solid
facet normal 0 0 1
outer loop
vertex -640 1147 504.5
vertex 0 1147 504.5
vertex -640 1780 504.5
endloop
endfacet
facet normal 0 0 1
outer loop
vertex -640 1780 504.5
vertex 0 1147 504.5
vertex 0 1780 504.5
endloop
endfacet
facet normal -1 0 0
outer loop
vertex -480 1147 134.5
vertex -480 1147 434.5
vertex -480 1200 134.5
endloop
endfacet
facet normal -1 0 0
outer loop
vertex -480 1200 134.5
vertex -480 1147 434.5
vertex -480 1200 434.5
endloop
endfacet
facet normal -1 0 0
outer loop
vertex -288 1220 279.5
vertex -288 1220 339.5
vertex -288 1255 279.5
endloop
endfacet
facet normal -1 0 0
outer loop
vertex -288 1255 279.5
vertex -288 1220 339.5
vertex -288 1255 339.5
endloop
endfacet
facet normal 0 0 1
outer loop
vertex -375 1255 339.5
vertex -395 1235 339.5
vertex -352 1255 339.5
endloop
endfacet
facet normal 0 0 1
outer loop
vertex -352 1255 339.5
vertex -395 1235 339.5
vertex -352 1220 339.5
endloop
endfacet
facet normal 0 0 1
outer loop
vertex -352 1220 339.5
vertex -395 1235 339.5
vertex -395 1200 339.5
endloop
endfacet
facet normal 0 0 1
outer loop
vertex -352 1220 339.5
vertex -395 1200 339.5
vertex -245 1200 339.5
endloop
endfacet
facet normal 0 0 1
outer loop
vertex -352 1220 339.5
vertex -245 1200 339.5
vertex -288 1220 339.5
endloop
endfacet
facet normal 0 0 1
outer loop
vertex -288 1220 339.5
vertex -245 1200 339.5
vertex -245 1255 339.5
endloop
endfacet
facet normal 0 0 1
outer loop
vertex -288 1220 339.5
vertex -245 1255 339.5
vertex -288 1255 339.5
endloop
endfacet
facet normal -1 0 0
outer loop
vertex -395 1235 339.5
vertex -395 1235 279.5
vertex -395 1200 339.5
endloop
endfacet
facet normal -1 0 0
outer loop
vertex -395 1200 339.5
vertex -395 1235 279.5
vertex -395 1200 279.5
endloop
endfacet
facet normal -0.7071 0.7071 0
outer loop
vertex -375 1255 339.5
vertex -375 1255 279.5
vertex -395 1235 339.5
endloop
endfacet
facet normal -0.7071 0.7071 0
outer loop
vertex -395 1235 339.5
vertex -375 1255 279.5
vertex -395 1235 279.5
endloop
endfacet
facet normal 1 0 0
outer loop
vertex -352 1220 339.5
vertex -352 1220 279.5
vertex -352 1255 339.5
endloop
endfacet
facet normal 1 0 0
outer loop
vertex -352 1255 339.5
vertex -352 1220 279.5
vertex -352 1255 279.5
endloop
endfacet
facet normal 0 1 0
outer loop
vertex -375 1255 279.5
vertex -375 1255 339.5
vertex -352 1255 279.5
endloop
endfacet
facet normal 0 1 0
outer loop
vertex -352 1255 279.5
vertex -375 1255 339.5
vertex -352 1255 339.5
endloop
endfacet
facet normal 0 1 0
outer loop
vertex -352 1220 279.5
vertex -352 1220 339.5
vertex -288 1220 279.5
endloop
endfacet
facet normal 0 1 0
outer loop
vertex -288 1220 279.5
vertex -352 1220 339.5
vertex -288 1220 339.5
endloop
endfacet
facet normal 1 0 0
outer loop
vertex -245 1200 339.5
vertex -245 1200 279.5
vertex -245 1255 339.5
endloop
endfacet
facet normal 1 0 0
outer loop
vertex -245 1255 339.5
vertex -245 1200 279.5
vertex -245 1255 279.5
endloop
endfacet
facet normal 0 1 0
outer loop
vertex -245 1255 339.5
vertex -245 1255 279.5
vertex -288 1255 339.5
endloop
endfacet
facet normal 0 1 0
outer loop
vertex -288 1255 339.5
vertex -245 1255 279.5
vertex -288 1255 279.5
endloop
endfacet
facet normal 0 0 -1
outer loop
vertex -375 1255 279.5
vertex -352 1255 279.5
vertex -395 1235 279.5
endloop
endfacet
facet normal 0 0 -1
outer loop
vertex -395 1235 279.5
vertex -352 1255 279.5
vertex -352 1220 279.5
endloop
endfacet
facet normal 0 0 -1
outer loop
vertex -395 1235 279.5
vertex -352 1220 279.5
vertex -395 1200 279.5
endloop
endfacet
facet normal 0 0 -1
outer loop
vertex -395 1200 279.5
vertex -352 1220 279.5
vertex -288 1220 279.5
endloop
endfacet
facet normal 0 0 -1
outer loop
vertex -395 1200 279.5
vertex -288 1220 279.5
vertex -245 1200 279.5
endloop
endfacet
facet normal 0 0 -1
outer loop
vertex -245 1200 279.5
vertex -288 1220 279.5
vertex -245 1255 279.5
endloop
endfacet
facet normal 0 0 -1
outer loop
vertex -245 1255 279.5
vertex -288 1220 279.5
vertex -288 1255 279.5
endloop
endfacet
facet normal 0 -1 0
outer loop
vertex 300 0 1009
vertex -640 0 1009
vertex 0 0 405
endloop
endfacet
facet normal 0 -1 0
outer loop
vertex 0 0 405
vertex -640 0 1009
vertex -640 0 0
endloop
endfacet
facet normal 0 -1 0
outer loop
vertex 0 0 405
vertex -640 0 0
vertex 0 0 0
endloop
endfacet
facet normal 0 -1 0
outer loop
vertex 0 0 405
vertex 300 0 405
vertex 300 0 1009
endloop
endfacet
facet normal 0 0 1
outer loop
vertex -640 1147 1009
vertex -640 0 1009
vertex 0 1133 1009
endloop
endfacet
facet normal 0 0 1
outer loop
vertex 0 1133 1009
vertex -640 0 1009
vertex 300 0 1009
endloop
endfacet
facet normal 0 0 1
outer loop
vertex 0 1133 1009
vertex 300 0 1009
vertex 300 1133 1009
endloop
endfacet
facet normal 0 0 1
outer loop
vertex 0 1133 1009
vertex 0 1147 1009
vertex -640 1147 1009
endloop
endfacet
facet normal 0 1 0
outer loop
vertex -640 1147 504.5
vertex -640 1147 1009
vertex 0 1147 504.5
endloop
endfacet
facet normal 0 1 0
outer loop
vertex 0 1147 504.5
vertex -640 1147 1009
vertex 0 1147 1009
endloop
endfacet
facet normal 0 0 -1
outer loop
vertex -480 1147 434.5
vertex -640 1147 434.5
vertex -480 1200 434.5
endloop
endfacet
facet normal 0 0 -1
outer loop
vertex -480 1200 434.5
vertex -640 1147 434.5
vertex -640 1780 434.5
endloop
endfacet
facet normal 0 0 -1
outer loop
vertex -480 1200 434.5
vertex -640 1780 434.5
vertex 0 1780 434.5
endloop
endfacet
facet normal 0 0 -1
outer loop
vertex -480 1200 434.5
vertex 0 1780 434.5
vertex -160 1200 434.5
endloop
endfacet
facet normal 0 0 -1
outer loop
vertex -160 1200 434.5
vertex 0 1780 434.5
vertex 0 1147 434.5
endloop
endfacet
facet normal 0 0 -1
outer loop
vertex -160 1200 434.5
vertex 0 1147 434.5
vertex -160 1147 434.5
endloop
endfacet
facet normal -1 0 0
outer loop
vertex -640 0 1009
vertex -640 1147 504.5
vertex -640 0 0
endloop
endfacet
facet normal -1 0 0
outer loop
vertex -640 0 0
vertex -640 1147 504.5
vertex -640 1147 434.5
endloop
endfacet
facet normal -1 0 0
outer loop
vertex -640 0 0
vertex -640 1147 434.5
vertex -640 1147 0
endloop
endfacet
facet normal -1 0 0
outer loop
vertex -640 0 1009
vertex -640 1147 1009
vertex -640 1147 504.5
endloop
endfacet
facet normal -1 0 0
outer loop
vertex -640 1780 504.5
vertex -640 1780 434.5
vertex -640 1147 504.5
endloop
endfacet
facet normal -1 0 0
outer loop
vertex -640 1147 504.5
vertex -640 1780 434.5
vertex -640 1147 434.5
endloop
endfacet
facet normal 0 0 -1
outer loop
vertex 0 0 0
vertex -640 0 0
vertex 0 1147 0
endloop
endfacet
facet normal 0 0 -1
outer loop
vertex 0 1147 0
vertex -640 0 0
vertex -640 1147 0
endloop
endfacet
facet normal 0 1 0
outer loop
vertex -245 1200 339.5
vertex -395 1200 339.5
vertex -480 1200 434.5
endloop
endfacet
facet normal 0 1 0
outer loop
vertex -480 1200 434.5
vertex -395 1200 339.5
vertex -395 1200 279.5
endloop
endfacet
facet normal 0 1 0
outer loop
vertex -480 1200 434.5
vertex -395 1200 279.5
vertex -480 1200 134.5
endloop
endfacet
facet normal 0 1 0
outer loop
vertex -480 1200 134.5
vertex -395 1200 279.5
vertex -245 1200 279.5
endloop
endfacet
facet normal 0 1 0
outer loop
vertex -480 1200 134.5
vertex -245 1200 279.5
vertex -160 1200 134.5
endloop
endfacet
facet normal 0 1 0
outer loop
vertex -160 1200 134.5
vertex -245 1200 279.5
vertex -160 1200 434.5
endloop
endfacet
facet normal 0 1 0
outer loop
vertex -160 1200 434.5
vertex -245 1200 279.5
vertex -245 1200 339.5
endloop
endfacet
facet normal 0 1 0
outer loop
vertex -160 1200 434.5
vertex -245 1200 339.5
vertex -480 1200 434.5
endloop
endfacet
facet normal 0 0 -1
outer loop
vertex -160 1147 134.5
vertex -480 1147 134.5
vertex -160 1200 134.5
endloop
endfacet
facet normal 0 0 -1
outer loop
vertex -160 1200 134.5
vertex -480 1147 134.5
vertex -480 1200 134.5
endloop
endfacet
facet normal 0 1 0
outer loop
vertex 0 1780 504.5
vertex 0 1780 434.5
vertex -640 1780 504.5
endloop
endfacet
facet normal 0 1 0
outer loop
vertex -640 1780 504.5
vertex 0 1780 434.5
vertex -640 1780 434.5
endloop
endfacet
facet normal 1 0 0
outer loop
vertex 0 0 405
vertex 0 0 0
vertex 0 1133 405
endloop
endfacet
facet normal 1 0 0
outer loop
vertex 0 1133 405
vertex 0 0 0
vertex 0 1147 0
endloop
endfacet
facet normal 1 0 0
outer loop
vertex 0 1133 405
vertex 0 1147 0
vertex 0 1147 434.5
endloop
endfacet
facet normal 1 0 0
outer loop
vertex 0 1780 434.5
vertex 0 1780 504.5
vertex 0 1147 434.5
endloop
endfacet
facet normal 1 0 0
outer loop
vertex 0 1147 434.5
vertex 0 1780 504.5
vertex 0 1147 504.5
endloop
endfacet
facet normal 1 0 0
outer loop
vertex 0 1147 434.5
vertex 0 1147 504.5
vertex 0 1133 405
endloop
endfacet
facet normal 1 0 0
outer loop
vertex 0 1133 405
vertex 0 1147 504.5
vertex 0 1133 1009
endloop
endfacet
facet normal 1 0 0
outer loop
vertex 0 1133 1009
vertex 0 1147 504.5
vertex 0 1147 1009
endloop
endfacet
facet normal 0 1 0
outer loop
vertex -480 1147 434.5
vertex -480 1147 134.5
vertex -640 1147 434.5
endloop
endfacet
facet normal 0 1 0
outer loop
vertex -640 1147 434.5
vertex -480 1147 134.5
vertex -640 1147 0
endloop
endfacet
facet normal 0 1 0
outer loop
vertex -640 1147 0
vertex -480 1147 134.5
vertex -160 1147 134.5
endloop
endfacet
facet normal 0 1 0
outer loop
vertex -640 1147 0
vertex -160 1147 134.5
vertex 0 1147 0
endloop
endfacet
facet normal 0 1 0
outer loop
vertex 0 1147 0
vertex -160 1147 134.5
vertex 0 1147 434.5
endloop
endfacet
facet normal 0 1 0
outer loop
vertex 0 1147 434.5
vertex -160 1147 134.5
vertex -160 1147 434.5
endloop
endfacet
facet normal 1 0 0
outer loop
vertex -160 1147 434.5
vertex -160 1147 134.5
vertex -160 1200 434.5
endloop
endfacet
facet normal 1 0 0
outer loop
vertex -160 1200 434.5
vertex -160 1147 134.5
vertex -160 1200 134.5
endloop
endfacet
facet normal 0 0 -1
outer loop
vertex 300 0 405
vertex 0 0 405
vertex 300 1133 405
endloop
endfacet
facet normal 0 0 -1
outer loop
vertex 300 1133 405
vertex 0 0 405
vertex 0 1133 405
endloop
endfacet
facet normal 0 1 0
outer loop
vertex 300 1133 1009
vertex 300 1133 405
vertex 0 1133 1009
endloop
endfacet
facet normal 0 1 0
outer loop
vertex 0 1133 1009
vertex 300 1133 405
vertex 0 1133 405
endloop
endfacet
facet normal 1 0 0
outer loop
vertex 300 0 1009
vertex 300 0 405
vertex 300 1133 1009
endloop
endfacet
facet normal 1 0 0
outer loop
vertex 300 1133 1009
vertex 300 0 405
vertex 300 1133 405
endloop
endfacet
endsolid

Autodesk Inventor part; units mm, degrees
ref_plane "YZ Plane" through (0, 0, 0) normal (1, 0, 0) x (0, 1, 0)
ref_plane "XZ Plane" through (0, 0, 0) normal (0, 1, 0) x (-1, 0, 0)
ref_plane "XY Plane" through (0, 0, 0) normal (0, 0, 1) x (1, 0, 0)
sketch "Boceto1" plane through (0, 0, 0) normal (0, 1, 0) x (-1, 0, 0)
  line L0 (0, 0) -> (640, 0)
  line L1 (640, 0) -> (640, 1009)
  line L2 (640, 1009) -> (0, 1009)
  line L3 (0, 1009) -> (0, 0)
  dimension "d0" = 640
  dimension "d1" = 1009
extrude "Extrusión1" add sketch "Boceto1" along normal blind 1147
sketch "Boceto2" plane through (0, 1147, 0) normal (0, 1, 0) x (1, 0, 0)
  line L0 (-640, 0) -> (-640, -1009) construction
  line L1 (-640, -1009) -> (0, -1009) construction
  line L2 (0, -1009) -> (0, 0) construction
  line L3 (0, 0) -> (-640, 0) construction
  line L4 (-640, 0) -> (-640, -1009) construction
  line L5 (-640, -1009) -> (-640, -504.5) construction
  line L6 (0, -1009) -> (0, 0) construction
  line L7 (-640, -504.5) -> (0, -504.5) construction
  line L8 (0, -504.5) -> (0, -434.5) construction
  line L9 (0, -434.5) -> (-640, -434.5) construction
  line L10 (-640, -434.5) -> (-640, -504.5) construction
  line L11 (0, -434.5) -> (-640, -434.5)
  line L12 (-640, -434.5) -> (-640, -504.5)
  line L13 (-640, -504.5) -> (0, -504.5)
  line L14 (0, -504.5) -> (0, -434.5)
  dimension "d4" = 504.5
  dimension "d5" = 70
  dimension "d6" = 70
extrude "Extrusión2" add sketch "Boceto2" along normal blind 633
sketch "Boceto3" plane through (0, 1147, 0) normal (0, 1, 0) x (1, 0, 0)
  line L0 (-640, -434.5) -> (0, -434.5) construction
  line L1 (0, -434.5) -> (0, 0) construction
  line L2 (0, 0) -> (-640, 0) construction
  line L3 (-640, 0) -> (-640, -434.5) construction
  line L4 (0, -434.5) -> (0, 0) construction
  line L5 (0, -434.5) -> (-160, -434.5) construction
  line L6 (0, -434.5) -> (-640, -434.5) construction
  line L7 (-640, -434.5) -> (-640, -504.5) construction
  line L8 (-640, -434.5) -> (-480, -434.5) construction
  line L9 (-480, -434.5) -> (-160, -434.5)
  line L10 (-160, -434.5) -> (-160, -134.5)
  line L11 (-160, -134.5) -> (-480, -134.5)
  line L12 (-480, -134.5) -> (-480, -434.5)
  dimension "d9" = 160
  dimension "d10" = 160
  dimension "d11" = 300
extrude "Extrusión3" add sketch "Boceto3" along normal blind 53
sketch "Boceto4" plane through (0, 1200, 0) normal (0, 1, 0) x (1, 0, 0)
  line L0 (-160, -434.5) -> (-480, -434.5) construction
  line L1 (-160, -434.5) -> (-160, -134.5) construction
  line L2 (-160, -134.5) -> (-480, -134.5) construction
  line L3 (-480, -134.5) -> (-480, -434.5) construction
  line L4 (0, -434.5) -> (-640, -434.5) construction
  line L5 (-320, -434.5) -> (-320, -309.5) construction
  circle A0 centre (-320, -309.5) radius 30 construction
  line L6 (-320, -309.5) -> (-395, -309.5) construction
  line L7 (-395, -309.5) -> (-395, -339.5) construction
  line L8 (-395, -339.5) -> (-320, -339.5) construction
  line L9 (-320, -339.5) -> (-320, -309.5) construction
  line L10 (-395, -339.5) -> (-245, -339.5)
  line L11 (-245, -339.5) -> (-245, -279.5)
  line L12 (-245, -279.5) -> (-395, -279.5)
  line L13 (-395, -279.5) -> (-395, -339.5)
  point P0 (0, 0)
  dimension "d14" = 125
  dimension "d15" = 60
  dimension "d16" = 75
  dimension "d17" = 30
  dimension "d18" = 150
  dimension "d19" = 60
extrude "Extrusión4" add sketch "Boceto4" along normal blind 20
sketch "Boceto5" plane through (0, 1220, 0) normal (0, 1, 0) x (1, 0, 0)
  line L0 (-245, -279.5) -> (-395, -279.5) construction
  line L1 (-395, -279.5) -> (-395, -339.5) construction
  line L2 (-395, -339.5) -> (-245, -339.5) construction
  line L3 (-245, -339.5) -> (-245, -279.5) construction
  circle A0 centre (-320, -309.5) radius 30 construction
  line L4 (-320, -309.5) -> (-352, -309.5) construction
  line L5 (-352, -309.5) -> (-288, -309.5) construction
  line L6 (-395, -339.5) -> (-245, -339.5) projected
  line L7 (-352, -339.5) -> (-395, -339.5)
  line L8 (-395, -339.5) -> (-395, -279.5)
  line L9 (-395, -279.5) -> (-352, -279.5)
  line L10 (-352, -279.5) -> (-352, -339.5)
  line L11 (-245, -279.5) -> (-245, -339.5) projected
  line L12 (-395, -279.5) -> (-245, -279.5) projected
  line L13 (-245, -339.5) -> (-288, -339.5)
  line L14 (-288, -339.5) -> (-288, -279.5)
  line L15 (-288, -279.5) -> (-245, -279.5)
  line L16 (-245, -279.5) -> (-245, -339.5)
  point P0 (0, 0)
  dimension "d22" = 60
  dimension "d23" = 32
  dimension "d24" = 64
extrude "Extrusión5" add sketch "Boceto5" along normal blind 35 contours L8 L9 L10 L6 | L14 L12 L11 L6
chamfer "Chaflán1" distance 20 angle 45 1 edges at (-395, 1255, 309.5)
sketch "Boceto6" plane through (0, 0, 0) normal (0, -1, 0) x (1, 0, 0)
  line L0 (-640, 0) -> (-640, 1009) construction
  line L1 (0, 0) -> (-640, 0) construction
  line L2 (0, 1009) -> (0, 0) construction
  line L3 (-640, 1009) -> (0, 1009) construction
  line L4 (-640, 1009) -> (0, 1009) projected
  line L5 (0, 1009) -> (300, 1009)
  line L6 (300, 1009) -> (300, 405)
  line L7 (300, 405) -> (0, 405)
  line L8 (0, 405) -> (0, 1009)
  dimension "d30" = 300
  dimension "d31" = 604
extrude "Extrusión6" add sketch "Boceto6" against normal blind 1133
sketch "Boceto7" plane through (0, 1220, 0) normal (0, 1, 0) x (1, 0, 0)
  line L0 (-352, -279.5) -> (-352, -339.5) projected
  line L1 (-352, -339.5) -> (-288, -339.5) projected
  line L2 (-288, -339.5) -> (-288, -279.5) projected
  line L3 (-288, -279.5) -> (-352, -279.5) projected
  circle A0 centre (-320, -309.5) radius 30
  point P0 (0, 0)
  dimension "d34" = 60
  dimension "d35" = 32
properties part number "CMM"
